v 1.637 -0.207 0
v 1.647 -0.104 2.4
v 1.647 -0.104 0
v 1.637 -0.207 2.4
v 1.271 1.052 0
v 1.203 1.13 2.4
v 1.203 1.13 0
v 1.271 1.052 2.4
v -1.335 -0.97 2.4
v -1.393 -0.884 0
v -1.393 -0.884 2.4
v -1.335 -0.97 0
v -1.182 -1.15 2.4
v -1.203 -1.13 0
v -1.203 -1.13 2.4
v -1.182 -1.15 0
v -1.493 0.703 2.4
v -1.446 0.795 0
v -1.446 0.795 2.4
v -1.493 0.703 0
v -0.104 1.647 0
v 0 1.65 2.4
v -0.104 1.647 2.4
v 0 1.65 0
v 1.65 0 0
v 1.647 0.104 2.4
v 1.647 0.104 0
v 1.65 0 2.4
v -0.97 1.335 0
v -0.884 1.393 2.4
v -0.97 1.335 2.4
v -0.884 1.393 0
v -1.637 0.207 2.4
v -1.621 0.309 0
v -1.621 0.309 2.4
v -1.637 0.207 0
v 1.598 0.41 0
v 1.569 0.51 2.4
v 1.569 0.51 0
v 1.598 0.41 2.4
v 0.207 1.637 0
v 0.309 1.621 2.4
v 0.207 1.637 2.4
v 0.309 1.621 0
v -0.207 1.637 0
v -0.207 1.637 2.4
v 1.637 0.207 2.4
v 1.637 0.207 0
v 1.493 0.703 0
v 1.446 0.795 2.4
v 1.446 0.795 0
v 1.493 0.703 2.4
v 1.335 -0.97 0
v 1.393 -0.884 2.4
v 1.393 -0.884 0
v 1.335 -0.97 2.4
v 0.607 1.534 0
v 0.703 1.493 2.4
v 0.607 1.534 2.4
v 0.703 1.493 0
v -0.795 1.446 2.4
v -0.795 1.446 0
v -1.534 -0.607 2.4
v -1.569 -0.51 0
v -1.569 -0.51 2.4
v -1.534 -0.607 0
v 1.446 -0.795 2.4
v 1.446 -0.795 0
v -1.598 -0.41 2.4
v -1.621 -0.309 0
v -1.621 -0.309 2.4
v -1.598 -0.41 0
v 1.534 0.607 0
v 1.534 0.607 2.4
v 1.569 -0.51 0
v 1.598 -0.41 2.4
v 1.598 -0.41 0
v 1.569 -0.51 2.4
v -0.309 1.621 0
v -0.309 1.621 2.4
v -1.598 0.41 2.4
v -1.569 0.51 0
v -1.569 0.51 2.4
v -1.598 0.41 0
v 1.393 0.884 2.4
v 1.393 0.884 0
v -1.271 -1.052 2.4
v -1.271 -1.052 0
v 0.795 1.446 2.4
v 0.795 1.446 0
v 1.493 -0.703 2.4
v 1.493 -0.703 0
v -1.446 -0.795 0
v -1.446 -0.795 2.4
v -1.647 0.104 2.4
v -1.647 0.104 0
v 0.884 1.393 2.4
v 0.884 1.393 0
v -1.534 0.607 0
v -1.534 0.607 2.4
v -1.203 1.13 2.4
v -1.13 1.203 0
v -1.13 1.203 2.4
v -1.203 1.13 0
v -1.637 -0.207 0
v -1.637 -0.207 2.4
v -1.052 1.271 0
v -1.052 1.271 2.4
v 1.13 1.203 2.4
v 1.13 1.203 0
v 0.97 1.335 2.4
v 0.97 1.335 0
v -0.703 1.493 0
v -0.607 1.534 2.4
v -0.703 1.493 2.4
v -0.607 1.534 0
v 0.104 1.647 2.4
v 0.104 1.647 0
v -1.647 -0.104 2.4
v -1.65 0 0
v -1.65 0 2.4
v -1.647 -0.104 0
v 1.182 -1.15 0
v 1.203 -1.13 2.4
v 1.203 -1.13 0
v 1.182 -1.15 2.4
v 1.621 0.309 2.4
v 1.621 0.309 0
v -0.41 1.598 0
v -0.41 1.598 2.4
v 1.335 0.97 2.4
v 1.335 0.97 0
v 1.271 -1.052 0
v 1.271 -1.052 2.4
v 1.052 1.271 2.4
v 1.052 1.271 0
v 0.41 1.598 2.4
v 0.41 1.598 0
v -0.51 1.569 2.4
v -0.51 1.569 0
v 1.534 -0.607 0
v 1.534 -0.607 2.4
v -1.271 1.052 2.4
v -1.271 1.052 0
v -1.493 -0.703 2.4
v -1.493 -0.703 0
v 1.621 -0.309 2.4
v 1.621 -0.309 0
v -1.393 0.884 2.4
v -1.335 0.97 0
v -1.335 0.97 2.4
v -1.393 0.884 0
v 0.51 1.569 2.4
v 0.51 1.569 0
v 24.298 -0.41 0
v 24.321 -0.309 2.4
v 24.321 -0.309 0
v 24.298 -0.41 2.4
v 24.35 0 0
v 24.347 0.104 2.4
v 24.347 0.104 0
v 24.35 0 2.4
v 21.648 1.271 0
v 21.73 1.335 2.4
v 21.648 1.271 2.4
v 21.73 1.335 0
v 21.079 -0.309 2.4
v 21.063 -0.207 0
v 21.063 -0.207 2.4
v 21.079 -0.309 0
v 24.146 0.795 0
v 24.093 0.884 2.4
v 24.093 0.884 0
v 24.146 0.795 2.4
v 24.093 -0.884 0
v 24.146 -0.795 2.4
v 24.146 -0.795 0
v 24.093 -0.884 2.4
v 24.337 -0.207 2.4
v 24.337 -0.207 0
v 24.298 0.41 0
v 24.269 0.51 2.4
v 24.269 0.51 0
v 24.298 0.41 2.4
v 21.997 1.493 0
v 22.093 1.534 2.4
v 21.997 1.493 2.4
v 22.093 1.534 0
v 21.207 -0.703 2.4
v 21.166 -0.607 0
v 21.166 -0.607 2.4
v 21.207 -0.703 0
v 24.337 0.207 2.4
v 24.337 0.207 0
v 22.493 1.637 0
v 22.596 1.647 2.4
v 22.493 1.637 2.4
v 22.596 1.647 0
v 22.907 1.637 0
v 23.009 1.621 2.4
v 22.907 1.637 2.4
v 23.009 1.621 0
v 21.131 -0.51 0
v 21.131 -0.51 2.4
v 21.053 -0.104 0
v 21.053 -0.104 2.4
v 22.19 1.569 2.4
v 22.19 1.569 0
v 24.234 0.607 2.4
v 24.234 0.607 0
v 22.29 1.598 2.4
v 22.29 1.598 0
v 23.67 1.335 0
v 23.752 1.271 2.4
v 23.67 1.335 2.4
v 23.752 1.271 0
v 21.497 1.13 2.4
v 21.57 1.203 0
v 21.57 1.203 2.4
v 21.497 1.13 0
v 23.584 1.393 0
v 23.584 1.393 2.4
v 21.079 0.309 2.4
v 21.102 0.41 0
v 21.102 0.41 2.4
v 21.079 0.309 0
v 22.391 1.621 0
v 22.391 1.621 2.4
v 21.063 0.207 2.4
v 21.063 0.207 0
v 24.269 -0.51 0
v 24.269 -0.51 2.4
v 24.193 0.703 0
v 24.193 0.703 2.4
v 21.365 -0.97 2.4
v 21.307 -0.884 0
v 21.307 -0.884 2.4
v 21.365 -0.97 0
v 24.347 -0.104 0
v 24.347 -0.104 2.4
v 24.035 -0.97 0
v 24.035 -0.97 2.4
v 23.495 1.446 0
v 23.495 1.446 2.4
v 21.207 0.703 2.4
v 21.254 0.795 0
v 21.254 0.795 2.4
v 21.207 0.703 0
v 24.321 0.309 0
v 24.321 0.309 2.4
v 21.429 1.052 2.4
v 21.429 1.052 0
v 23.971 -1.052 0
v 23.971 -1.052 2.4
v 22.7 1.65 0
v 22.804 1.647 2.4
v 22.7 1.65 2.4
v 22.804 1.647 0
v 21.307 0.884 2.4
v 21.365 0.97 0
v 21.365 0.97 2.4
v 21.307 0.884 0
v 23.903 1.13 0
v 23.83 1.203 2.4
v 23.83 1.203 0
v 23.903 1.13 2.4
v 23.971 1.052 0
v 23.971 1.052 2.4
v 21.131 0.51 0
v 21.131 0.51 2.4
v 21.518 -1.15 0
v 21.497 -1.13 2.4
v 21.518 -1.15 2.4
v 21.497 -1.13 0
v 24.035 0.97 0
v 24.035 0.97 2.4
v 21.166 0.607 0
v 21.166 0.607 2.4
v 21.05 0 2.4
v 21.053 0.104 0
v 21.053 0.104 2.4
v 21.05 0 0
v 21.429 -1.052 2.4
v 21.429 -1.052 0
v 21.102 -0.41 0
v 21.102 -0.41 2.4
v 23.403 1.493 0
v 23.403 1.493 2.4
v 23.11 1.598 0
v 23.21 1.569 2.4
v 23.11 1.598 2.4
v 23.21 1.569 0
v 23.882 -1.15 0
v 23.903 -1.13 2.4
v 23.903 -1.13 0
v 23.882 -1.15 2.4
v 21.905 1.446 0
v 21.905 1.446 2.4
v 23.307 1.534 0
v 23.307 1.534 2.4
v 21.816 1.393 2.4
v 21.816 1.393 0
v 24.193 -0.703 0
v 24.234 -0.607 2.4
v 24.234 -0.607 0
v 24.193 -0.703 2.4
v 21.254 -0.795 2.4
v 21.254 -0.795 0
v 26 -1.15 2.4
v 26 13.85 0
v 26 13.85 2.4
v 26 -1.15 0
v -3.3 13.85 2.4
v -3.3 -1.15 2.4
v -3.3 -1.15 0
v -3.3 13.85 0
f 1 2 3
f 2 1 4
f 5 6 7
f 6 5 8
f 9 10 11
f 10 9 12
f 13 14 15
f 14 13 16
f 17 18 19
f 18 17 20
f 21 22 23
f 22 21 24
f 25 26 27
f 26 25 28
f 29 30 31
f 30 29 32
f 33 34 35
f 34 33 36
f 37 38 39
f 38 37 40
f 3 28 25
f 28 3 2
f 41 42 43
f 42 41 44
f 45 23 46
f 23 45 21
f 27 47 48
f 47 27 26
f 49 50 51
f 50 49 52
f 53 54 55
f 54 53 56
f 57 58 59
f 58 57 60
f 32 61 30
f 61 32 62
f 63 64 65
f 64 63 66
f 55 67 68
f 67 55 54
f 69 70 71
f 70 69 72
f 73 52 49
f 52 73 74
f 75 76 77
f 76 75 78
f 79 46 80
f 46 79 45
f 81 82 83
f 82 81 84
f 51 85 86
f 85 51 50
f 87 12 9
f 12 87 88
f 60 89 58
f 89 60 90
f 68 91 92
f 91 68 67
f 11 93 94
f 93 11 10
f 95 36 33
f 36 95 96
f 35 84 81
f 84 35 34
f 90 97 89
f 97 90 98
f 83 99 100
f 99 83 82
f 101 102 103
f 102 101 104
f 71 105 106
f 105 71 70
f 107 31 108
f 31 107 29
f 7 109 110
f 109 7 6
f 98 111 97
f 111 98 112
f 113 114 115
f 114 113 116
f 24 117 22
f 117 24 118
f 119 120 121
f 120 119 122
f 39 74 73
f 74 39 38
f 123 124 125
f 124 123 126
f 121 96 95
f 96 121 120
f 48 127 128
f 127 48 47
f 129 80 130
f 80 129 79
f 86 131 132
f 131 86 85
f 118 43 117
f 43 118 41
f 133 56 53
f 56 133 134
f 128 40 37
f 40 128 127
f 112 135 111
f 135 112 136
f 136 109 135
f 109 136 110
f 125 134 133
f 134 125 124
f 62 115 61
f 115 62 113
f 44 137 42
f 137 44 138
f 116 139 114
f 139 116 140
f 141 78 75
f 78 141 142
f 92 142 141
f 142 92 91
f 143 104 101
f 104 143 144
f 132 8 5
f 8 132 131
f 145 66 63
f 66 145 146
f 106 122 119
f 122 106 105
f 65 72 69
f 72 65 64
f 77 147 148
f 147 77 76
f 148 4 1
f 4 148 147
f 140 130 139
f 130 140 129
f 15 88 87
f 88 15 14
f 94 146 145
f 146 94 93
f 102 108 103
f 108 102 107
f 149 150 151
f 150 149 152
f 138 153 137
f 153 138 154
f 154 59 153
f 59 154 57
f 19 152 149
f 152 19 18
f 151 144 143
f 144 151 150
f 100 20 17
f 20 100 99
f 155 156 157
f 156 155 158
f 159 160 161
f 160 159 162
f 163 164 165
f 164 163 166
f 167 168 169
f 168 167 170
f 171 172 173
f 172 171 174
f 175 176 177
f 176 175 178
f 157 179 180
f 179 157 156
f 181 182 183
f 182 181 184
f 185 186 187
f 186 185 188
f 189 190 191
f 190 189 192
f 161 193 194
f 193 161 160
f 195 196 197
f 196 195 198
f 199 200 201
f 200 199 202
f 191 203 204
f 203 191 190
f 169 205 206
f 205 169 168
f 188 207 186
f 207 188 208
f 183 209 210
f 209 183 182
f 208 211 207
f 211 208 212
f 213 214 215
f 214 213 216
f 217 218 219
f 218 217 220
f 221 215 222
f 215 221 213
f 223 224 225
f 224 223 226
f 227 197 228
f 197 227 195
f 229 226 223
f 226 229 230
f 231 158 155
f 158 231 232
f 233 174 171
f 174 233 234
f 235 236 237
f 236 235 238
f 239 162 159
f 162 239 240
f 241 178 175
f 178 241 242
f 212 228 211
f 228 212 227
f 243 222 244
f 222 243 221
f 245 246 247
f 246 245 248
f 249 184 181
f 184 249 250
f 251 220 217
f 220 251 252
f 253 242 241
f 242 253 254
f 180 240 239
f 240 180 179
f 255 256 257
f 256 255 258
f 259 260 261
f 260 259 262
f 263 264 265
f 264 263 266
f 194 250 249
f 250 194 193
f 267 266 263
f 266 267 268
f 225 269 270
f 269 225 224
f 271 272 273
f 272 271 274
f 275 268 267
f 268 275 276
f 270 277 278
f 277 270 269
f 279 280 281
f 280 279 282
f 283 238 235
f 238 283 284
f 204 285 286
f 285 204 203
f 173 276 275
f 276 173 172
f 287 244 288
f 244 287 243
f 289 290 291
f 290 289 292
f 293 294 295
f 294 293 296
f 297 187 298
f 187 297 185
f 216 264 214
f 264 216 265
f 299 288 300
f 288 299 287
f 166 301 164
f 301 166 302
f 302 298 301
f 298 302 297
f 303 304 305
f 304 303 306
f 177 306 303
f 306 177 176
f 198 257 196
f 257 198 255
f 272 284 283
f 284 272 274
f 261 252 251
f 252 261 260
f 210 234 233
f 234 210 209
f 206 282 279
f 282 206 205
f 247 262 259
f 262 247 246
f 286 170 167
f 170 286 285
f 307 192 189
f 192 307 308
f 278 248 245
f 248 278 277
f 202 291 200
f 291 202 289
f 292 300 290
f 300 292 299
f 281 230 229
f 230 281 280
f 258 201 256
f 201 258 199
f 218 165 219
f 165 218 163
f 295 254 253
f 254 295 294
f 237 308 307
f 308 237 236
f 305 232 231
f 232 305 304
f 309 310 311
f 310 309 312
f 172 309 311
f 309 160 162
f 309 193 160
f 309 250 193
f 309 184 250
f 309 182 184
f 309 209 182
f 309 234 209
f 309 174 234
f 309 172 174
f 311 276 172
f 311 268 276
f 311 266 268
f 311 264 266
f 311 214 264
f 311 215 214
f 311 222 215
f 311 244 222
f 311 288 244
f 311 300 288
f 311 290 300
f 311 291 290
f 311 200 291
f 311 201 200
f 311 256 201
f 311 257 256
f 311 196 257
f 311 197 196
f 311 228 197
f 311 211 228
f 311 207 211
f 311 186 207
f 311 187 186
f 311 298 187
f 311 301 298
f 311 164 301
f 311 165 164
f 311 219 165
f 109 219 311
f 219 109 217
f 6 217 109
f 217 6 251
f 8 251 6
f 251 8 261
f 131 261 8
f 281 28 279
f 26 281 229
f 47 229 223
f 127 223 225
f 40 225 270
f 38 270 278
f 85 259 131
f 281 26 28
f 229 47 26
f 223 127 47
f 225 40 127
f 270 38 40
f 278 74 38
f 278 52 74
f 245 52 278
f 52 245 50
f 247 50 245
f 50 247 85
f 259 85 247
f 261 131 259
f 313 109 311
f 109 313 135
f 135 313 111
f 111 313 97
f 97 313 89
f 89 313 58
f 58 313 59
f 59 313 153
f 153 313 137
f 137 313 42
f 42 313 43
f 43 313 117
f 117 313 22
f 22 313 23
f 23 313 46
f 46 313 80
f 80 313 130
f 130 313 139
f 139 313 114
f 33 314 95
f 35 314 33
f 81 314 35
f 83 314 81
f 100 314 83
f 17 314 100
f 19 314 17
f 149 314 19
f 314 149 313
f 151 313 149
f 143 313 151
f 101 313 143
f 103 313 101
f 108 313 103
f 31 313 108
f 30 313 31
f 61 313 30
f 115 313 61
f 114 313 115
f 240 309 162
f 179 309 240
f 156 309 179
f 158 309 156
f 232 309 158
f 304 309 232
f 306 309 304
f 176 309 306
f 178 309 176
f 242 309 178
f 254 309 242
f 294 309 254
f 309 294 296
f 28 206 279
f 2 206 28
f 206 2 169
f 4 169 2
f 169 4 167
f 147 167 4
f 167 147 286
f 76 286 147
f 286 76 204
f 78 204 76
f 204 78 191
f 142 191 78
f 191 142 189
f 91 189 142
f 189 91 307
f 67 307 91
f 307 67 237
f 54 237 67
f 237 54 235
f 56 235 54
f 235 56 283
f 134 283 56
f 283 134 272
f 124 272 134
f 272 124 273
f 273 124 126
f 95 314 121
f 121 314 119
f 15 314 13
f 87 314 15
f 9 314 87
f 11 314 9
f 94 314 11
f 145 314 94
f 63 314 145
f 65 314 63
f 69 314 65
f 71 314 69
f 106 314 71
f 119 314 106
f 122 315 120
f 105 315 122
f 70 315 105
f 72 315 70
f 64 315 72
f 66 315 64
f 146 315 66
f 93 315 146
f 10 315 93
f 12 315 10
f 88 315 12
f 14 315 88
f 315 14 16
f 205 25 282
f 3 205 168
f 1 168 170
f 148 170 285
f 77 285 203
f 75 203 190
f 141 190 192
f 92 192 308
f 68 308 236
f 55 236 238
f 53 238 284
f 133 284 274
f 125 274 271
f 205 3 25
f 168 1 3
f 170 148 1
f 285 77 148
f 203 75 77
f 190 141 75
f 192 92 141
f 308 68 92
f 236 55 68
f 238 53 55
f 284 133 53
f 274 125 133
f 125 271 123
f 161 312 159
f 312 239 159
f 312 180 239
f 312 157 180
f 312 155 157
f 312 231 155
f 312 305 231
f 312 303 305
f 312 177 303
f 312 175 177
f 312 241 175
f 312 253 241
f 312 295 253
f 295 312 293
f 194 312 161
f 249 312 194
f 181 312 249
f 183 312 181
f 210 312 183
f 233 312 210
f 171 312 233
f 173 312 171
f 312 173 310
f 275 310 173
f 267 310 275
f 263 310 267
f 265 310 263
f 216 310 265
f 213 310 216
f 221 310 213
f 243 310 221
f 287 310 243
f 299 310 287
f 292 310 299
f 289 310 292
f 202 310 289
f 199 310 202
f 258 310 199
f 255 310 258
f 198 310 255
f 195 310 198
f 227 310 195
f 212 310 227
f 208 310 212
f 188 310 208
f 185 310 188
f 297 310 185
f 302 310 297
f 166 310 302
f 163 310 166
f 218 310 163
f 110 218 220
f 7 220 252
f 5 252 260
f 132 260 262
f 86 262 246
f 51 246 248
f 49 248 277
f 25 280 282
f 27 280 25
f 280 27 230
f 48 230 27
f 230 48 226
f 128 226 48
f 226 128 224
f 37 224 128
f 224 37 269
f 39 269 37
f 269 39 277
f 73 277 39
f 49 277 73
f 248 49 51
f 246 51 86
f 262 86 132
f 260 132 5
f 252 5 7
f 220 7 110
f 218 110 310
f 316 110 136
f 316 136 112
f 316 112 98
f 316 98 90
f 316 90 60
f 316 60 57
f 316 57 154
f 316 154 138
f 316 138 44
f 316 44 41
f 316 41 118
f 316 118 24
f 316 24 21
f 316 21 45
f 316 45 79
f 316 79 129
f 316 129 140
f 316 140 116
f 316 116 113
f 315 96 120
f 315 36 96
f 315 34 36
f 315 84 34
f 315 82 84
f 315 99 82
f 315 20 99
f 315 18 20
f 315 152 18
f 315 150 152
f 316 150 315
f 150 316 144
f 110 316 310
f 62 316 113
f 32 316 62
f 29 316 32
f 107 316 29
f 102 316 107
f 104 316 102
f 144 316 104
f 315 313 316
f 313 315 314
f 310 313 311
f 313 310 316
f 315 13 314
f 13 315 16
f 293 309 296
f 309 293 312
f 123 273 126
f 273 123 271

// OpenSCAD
fence_height = 15;
fence_thickness = 0.6*4;

wire = 3.3;
width = 26;

$fn = 100;



module plate(){
    x = width+wire;
    y = fence_height;
    z = fence_thickness;
    
    translate([-wire,-wire/2+0.5,0])
    cube([x,y,z]);
}

module wires(){
    pitch = width-wire;
    translate([0,0,-5]){
    cylinder(h=10,d=wire);
    translate([pitch,0,0])
        cylinder(h=10,d=wire);
    }
}

difference(){
    plate();
    wires();
}
